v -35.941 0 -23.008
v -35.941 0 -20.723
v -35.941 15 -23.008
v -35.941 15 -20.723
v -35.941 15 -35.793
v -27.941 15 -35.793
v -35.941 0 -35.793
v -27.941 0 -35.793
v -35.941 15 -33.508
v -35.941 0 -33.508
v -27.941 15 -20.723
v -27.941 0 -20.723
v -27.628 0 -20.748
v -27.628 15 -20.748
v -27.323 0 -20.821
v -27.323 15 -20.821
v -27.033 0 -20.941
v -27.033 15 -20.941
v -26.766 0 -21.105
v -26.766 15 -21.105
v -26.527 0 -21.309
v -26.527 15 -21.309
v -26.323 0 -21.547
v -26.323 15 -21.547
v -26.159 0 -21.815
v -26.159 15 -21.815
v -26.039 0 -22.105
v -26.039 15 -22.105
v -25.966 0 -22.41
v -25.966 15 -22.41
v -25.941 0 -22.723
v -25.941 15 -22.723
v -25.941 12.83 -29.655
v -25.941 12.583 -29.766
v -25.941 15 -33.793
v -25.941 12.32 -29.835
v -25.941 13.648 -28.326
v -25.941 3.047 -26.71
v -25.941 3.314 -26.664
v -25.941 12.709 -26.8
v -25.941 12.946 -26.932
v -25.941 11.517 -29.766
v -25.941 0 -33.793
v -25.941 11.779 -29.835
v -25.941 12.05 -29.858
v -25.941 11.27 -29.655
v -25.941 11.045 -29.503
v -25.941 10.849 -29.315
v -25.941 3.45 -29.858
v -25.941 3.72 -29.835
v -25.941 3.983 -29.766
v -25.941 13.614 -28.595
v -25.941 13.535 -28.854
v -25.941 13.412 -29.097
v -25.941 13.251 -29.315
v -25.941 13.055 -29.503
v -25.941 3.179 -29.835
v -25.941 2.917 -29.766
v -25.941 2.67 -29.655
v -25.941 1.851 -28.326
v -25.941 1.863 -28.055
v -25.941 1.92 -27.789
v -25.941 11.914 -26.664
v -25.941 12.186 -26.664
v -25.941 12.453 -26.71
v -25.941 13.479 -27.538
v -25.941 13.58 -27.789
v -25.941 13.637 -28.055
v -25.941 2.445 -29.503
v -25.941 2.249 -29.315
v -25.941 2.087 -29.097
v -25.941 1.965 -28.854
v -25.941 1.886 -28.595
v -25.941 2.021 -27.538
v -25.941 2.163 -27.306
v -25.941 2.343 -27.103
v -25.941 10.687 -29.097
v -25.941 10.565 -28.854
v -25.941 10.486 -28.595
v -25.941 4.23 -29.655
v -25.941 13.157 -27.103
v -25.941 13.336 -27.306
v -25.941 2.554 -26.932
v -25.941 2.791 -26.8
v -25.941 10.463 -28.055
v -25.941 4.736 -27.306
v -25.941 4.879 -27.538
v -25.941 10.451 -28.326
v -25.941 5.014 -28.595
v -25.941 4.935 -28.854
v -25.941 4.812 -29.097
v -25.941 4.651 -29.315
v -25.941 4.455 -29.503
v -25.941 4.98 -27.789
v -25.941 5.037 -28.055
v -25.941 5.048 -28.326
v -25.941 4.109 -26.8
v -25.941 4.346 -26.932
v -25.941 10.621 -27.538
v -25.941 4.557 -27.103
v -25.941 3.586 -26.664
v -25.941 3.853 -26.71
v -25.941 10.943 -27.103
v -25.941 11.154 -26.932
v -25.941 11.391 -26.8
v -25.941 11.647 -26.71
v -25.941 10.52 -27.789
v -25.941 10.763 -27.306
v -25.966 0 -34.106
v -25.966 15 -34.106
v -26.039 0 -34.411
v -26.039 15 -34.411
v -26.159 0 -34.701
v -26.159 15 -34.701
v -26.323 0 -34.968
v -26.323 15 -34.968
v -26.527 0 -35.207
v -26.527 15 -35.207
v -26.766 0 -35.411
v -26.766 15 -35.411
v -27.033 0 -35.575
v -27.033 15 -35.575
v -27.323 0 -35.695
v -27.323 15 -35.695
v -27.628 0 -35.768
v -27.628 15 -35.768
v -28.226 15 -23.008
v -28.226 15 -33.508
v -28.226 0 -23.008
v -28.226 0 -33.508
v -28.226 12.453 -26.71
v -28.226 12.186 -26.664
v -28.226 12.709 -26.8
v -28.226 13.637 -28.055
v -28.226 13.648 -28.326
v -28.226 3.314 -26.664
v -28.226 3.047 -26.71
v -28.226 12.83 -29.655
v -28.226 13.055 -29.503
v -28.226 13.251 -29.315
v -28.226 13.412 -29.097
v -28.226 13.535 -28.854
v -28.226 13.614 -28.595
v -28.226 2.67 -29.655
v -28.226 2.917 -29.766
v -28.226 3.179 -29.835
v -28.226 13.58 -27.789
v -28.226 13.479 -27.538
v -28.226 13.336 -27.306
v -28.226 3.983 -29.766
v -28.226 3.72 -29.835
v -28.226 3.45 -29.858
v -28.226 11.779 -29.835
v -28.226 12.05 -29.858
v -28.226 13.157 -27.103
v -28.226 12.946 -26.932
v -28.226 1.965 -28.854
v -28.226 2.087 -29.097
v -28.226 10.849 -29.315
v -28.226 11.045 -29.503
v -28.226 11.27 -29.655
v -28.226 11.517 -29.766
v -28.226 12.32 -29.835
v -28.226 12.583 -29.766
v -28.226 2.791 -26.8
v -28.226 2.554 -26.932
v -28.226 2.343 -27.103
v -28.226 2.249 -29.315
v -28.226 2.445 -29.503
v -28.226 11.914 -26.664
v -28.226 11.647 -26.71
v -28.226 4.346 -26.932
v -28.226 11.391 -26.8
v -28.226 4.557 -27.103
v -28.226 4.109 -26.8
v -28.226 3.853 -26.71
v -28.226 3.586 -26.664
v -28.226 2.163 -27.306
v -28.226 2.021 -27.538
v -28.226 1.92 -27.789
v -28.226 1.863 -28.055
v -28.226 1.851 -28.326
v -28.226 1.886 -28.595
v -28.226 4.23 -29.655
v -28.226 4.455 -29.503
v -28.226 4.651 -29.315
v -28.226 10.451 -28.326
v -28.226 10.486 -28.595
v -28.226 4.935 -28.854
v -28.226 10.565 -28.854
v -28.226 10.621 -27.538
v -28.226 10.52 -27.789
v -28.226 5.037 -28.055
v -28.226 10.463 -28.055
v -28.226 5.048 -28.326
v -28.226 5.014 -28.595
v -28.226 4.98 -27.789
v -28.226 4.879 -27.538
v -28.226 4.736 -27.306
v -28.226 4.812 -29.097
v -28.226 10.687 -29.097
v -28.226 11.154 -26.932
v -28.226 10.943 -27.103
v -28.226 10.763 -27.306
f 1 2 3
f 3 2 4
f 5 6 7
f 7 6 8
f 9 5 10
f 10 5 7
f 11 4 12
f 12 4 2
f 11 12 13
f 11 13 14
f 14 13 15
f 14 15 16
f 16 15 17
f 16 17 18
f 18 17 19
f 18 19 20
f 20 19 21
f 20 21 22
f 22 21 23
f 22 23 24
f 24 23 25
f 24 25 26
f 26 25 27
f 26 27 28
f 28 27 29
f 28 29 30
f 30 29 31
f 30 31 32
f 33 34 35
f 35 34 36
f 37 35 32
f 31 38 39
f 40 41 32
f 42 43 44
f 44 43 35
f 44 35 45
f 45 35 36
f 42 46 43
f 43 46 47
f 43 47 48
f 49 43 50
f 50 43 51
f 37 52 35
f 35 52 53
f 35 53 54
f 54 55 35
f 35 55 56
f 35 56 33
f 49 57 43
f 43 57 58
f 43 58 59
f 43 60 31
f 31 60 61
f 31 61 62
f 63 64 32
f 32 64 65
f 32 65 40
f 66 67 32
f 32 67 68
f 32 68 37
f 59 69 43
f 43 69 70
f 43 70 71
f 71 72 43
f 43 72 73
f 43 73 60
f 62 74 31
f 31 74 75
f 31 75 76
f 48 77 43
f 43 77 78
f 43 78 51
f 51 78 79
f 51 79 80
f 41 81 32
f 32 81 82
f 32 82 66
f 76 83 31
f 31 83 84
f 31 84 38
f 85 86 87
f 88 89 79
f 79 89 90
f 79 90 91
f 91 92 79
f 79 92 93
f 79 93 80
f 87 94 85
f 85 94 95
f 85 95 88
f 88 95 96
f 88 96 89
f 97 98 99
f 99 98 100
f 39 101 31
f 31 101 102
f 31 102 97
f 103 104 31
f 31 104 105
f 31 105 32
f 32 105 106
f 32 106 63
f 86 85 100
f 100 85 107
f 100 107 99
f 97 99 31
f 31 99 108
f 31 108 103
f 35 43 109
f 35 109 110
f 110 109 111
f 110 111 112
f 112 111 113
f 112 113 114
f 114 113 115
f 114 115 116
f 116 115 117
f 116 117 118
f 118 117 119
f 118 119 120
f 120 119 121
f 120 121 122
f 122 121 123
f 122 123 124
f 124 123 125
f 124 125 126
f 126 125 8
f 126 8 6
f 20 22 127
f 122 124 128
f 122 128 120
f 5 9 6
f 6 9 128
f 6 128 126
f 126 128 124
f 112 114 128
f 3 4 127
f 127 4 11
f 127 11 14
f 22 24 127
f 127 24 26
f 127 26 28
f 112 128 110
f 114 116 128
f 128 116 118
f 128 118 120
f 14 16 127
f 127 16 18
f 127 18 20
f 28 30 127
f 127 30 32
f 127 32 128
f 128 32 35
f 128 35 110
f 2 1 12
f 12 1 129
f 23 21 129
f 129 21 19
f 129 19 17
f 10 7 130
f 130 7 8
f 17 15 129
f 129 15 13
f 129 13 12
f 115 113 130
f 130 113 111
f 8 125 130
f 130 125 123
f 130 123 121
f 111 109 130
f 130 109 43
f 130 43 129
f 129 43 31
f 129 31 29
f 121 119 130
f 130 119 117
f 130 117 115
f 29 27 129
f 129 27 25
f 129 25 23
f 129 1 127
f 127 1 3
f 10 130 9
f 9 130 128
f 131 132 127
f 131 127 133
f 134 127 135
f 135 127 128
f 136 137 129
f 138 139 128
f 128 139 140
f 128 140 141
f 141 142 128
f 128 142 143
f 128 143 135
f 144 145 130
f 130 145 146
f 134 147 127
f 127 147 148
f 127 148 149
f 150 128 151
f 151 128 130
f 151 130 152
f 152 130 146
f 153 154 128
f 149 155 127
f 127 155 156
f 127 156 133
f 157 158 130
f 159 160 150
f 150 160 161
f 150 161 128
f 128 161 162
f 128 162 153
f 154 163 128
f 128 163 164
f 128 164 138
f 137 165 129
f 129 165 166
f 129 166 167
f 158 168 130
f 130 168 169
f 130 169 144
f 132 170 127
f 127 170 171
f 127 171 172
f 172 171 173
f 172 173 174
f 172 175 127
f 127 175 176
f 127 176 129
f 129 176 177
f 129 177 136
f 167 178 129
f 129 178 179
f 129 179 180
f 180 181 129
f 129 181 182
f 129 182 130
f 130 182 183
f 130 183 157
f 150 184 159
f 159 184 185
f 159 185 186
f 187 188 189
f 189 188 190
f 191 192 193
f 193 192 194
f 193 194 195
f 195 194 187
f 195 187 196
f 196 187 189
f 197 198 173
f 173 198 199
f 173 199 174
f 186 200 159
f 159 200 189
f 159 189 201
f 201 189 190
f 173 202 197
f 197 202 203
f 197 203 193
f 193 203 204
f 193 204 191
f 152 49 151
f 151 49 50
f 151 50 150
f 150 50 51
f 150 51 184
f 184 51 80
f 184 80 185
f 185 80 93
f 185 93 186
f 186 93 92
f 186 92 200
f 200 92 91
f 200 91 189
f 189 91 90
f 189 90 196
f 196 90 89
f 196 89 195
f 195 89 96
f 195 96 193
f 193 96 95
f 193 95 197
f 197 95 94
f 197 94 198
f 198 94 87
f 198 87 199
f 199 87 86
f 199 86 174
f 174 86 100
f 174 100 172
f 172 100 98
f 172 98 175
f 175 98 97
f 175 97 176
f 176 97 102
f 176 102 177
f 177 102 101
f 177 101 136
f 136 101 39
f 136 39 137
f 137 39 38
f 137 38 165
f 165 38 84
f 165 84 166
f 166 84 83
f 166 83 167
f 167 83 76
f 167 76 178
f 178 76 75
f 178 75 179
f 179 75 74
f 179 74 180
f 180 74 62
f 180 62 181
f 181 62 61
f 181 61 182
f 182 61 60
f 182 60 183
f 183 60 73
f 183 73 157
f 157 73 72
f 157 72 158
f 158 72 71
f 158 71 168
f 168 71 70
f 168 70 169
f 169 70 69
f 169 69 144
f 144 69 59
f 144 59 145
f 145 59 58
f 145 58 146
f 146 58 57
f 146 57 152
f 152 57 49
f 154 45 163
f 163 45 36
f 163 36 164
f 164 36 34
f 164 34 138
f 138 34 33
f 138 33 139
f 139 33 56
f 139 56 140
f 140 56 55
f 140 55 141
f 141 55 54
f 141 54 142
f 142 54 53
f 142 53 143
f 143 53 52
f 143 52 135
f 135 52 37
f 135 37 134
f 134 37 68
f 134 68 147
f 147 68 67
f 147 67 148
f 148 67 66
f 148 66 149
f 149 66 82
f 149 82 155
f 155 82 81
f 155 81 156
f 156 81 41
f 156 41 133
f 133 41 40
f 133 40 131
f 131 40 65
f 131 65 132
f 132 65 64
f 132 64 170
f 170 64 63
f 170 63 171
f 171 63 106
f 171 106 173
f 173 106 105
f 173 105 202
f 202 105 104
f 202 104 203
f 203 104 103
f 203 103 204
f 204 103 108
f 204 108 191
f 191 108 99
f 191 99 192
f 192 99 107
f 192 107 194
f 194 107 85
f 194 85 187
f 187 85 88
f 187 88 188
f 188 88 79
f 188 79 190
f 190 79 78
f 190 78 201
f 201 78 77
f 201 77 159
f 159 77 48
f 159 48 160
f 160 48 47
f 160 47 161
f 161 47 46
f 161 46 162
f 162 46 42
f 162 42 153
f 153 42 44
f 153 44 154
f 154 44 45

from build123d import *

# Parameters (mm, degrees)
EXTRUDE_4_DEPTH     = 15
SKETCH_6_W          = 5.43
SKETCH_6_H          = 10.5
CUT_EXTRUDE_2_DEPTH = 15
SKETCH_7_W          = 2.285
SKETCH_7_H          = 10.5
CUT_EXTRUDE_3_DEPTH = 15
SKETCH_8_R          = 1.6
CUT_EXTRUDE_4_DEPTH = 10


with BuildPart() as part:
    # 草图1 → 凸台-拉伸4 (new body)
    with BuildSketch(Plane(origin=(0, 0, 0), x_dir=(1, 0, 0), z_dir=(0, 1, 0))):
        with BuildLine():
            Line((-35.94125392, 35.792894198), (-35.94125392, 20.722894198))
            Line((-35.94125392, 20.722894198), (-27.94125392, 20.722894198))
            ThreePointArc((-27.94125392, 20.722894198), (-26.527040358, 21.308680636), (-25.94125392, 22.722894198))
            Line((-25.94125392, 22.722894198), (-25.94125392, 33.792894198))
            ThreePointArc((-25.94125392, 33.792894198), (-26.527040358, 35.207107761), (-27.94125392, 35.792894198))
            Line((-27.94125392, 35.792894198), (-35.94125392, 35.792894198))
        make_face()
    extrude(amount=EXTRUDE_4_DEPTH)

    # 草图6 → 切除-拉伸2 (cut)
    with BuildSketch(Plane(origin=(0, 15, 0), x_dir=(1, 0, 0), z_dir=(0, 1, 0))):
        with Locations((-30.94125392, 28.257894198)):
            Rectangle(SKETCH_6_W, SKETCH_6_H)
    extrude(amount=-CUT_EXTRUDE_2_DEPTH, mode=Mode.SUBTRACT)

    # 草图7 → 切除-拉伸3 (cut)
    with BuildSketch(Plane(origin=(0, 15, 0), x_dir=(1, 0, 0), z_dir=(0, 1, 0))):
        with Locations((-34.79875392, 28.257894198)):
            Rectangle(SKETCH_7_W, SKETCH_7_H)
    extrude(amount=-CUT_EXTRUDE_3_DEPTH, mode=Mode.SUBTRACT)

    # 草图8 → 切除-拉伸4 (cut)
    with BuildSketch(Plane(origin=(-25.94125392, 0, 0), x_dir=(0, 0, -1), z_dir=(1, 0, 0))):
        with Locations((28.257894198, 12.049892986)):
            Circle(SKETCH_8_R)
        with Locations((28.257894198, 3.449892986)):
            Circle(SKETCH_8_R)
    extrude(amount=-CUT_EXTRUDE_4_DEPTH, mode=Mode.SUBTRACT)


solid = part.part
